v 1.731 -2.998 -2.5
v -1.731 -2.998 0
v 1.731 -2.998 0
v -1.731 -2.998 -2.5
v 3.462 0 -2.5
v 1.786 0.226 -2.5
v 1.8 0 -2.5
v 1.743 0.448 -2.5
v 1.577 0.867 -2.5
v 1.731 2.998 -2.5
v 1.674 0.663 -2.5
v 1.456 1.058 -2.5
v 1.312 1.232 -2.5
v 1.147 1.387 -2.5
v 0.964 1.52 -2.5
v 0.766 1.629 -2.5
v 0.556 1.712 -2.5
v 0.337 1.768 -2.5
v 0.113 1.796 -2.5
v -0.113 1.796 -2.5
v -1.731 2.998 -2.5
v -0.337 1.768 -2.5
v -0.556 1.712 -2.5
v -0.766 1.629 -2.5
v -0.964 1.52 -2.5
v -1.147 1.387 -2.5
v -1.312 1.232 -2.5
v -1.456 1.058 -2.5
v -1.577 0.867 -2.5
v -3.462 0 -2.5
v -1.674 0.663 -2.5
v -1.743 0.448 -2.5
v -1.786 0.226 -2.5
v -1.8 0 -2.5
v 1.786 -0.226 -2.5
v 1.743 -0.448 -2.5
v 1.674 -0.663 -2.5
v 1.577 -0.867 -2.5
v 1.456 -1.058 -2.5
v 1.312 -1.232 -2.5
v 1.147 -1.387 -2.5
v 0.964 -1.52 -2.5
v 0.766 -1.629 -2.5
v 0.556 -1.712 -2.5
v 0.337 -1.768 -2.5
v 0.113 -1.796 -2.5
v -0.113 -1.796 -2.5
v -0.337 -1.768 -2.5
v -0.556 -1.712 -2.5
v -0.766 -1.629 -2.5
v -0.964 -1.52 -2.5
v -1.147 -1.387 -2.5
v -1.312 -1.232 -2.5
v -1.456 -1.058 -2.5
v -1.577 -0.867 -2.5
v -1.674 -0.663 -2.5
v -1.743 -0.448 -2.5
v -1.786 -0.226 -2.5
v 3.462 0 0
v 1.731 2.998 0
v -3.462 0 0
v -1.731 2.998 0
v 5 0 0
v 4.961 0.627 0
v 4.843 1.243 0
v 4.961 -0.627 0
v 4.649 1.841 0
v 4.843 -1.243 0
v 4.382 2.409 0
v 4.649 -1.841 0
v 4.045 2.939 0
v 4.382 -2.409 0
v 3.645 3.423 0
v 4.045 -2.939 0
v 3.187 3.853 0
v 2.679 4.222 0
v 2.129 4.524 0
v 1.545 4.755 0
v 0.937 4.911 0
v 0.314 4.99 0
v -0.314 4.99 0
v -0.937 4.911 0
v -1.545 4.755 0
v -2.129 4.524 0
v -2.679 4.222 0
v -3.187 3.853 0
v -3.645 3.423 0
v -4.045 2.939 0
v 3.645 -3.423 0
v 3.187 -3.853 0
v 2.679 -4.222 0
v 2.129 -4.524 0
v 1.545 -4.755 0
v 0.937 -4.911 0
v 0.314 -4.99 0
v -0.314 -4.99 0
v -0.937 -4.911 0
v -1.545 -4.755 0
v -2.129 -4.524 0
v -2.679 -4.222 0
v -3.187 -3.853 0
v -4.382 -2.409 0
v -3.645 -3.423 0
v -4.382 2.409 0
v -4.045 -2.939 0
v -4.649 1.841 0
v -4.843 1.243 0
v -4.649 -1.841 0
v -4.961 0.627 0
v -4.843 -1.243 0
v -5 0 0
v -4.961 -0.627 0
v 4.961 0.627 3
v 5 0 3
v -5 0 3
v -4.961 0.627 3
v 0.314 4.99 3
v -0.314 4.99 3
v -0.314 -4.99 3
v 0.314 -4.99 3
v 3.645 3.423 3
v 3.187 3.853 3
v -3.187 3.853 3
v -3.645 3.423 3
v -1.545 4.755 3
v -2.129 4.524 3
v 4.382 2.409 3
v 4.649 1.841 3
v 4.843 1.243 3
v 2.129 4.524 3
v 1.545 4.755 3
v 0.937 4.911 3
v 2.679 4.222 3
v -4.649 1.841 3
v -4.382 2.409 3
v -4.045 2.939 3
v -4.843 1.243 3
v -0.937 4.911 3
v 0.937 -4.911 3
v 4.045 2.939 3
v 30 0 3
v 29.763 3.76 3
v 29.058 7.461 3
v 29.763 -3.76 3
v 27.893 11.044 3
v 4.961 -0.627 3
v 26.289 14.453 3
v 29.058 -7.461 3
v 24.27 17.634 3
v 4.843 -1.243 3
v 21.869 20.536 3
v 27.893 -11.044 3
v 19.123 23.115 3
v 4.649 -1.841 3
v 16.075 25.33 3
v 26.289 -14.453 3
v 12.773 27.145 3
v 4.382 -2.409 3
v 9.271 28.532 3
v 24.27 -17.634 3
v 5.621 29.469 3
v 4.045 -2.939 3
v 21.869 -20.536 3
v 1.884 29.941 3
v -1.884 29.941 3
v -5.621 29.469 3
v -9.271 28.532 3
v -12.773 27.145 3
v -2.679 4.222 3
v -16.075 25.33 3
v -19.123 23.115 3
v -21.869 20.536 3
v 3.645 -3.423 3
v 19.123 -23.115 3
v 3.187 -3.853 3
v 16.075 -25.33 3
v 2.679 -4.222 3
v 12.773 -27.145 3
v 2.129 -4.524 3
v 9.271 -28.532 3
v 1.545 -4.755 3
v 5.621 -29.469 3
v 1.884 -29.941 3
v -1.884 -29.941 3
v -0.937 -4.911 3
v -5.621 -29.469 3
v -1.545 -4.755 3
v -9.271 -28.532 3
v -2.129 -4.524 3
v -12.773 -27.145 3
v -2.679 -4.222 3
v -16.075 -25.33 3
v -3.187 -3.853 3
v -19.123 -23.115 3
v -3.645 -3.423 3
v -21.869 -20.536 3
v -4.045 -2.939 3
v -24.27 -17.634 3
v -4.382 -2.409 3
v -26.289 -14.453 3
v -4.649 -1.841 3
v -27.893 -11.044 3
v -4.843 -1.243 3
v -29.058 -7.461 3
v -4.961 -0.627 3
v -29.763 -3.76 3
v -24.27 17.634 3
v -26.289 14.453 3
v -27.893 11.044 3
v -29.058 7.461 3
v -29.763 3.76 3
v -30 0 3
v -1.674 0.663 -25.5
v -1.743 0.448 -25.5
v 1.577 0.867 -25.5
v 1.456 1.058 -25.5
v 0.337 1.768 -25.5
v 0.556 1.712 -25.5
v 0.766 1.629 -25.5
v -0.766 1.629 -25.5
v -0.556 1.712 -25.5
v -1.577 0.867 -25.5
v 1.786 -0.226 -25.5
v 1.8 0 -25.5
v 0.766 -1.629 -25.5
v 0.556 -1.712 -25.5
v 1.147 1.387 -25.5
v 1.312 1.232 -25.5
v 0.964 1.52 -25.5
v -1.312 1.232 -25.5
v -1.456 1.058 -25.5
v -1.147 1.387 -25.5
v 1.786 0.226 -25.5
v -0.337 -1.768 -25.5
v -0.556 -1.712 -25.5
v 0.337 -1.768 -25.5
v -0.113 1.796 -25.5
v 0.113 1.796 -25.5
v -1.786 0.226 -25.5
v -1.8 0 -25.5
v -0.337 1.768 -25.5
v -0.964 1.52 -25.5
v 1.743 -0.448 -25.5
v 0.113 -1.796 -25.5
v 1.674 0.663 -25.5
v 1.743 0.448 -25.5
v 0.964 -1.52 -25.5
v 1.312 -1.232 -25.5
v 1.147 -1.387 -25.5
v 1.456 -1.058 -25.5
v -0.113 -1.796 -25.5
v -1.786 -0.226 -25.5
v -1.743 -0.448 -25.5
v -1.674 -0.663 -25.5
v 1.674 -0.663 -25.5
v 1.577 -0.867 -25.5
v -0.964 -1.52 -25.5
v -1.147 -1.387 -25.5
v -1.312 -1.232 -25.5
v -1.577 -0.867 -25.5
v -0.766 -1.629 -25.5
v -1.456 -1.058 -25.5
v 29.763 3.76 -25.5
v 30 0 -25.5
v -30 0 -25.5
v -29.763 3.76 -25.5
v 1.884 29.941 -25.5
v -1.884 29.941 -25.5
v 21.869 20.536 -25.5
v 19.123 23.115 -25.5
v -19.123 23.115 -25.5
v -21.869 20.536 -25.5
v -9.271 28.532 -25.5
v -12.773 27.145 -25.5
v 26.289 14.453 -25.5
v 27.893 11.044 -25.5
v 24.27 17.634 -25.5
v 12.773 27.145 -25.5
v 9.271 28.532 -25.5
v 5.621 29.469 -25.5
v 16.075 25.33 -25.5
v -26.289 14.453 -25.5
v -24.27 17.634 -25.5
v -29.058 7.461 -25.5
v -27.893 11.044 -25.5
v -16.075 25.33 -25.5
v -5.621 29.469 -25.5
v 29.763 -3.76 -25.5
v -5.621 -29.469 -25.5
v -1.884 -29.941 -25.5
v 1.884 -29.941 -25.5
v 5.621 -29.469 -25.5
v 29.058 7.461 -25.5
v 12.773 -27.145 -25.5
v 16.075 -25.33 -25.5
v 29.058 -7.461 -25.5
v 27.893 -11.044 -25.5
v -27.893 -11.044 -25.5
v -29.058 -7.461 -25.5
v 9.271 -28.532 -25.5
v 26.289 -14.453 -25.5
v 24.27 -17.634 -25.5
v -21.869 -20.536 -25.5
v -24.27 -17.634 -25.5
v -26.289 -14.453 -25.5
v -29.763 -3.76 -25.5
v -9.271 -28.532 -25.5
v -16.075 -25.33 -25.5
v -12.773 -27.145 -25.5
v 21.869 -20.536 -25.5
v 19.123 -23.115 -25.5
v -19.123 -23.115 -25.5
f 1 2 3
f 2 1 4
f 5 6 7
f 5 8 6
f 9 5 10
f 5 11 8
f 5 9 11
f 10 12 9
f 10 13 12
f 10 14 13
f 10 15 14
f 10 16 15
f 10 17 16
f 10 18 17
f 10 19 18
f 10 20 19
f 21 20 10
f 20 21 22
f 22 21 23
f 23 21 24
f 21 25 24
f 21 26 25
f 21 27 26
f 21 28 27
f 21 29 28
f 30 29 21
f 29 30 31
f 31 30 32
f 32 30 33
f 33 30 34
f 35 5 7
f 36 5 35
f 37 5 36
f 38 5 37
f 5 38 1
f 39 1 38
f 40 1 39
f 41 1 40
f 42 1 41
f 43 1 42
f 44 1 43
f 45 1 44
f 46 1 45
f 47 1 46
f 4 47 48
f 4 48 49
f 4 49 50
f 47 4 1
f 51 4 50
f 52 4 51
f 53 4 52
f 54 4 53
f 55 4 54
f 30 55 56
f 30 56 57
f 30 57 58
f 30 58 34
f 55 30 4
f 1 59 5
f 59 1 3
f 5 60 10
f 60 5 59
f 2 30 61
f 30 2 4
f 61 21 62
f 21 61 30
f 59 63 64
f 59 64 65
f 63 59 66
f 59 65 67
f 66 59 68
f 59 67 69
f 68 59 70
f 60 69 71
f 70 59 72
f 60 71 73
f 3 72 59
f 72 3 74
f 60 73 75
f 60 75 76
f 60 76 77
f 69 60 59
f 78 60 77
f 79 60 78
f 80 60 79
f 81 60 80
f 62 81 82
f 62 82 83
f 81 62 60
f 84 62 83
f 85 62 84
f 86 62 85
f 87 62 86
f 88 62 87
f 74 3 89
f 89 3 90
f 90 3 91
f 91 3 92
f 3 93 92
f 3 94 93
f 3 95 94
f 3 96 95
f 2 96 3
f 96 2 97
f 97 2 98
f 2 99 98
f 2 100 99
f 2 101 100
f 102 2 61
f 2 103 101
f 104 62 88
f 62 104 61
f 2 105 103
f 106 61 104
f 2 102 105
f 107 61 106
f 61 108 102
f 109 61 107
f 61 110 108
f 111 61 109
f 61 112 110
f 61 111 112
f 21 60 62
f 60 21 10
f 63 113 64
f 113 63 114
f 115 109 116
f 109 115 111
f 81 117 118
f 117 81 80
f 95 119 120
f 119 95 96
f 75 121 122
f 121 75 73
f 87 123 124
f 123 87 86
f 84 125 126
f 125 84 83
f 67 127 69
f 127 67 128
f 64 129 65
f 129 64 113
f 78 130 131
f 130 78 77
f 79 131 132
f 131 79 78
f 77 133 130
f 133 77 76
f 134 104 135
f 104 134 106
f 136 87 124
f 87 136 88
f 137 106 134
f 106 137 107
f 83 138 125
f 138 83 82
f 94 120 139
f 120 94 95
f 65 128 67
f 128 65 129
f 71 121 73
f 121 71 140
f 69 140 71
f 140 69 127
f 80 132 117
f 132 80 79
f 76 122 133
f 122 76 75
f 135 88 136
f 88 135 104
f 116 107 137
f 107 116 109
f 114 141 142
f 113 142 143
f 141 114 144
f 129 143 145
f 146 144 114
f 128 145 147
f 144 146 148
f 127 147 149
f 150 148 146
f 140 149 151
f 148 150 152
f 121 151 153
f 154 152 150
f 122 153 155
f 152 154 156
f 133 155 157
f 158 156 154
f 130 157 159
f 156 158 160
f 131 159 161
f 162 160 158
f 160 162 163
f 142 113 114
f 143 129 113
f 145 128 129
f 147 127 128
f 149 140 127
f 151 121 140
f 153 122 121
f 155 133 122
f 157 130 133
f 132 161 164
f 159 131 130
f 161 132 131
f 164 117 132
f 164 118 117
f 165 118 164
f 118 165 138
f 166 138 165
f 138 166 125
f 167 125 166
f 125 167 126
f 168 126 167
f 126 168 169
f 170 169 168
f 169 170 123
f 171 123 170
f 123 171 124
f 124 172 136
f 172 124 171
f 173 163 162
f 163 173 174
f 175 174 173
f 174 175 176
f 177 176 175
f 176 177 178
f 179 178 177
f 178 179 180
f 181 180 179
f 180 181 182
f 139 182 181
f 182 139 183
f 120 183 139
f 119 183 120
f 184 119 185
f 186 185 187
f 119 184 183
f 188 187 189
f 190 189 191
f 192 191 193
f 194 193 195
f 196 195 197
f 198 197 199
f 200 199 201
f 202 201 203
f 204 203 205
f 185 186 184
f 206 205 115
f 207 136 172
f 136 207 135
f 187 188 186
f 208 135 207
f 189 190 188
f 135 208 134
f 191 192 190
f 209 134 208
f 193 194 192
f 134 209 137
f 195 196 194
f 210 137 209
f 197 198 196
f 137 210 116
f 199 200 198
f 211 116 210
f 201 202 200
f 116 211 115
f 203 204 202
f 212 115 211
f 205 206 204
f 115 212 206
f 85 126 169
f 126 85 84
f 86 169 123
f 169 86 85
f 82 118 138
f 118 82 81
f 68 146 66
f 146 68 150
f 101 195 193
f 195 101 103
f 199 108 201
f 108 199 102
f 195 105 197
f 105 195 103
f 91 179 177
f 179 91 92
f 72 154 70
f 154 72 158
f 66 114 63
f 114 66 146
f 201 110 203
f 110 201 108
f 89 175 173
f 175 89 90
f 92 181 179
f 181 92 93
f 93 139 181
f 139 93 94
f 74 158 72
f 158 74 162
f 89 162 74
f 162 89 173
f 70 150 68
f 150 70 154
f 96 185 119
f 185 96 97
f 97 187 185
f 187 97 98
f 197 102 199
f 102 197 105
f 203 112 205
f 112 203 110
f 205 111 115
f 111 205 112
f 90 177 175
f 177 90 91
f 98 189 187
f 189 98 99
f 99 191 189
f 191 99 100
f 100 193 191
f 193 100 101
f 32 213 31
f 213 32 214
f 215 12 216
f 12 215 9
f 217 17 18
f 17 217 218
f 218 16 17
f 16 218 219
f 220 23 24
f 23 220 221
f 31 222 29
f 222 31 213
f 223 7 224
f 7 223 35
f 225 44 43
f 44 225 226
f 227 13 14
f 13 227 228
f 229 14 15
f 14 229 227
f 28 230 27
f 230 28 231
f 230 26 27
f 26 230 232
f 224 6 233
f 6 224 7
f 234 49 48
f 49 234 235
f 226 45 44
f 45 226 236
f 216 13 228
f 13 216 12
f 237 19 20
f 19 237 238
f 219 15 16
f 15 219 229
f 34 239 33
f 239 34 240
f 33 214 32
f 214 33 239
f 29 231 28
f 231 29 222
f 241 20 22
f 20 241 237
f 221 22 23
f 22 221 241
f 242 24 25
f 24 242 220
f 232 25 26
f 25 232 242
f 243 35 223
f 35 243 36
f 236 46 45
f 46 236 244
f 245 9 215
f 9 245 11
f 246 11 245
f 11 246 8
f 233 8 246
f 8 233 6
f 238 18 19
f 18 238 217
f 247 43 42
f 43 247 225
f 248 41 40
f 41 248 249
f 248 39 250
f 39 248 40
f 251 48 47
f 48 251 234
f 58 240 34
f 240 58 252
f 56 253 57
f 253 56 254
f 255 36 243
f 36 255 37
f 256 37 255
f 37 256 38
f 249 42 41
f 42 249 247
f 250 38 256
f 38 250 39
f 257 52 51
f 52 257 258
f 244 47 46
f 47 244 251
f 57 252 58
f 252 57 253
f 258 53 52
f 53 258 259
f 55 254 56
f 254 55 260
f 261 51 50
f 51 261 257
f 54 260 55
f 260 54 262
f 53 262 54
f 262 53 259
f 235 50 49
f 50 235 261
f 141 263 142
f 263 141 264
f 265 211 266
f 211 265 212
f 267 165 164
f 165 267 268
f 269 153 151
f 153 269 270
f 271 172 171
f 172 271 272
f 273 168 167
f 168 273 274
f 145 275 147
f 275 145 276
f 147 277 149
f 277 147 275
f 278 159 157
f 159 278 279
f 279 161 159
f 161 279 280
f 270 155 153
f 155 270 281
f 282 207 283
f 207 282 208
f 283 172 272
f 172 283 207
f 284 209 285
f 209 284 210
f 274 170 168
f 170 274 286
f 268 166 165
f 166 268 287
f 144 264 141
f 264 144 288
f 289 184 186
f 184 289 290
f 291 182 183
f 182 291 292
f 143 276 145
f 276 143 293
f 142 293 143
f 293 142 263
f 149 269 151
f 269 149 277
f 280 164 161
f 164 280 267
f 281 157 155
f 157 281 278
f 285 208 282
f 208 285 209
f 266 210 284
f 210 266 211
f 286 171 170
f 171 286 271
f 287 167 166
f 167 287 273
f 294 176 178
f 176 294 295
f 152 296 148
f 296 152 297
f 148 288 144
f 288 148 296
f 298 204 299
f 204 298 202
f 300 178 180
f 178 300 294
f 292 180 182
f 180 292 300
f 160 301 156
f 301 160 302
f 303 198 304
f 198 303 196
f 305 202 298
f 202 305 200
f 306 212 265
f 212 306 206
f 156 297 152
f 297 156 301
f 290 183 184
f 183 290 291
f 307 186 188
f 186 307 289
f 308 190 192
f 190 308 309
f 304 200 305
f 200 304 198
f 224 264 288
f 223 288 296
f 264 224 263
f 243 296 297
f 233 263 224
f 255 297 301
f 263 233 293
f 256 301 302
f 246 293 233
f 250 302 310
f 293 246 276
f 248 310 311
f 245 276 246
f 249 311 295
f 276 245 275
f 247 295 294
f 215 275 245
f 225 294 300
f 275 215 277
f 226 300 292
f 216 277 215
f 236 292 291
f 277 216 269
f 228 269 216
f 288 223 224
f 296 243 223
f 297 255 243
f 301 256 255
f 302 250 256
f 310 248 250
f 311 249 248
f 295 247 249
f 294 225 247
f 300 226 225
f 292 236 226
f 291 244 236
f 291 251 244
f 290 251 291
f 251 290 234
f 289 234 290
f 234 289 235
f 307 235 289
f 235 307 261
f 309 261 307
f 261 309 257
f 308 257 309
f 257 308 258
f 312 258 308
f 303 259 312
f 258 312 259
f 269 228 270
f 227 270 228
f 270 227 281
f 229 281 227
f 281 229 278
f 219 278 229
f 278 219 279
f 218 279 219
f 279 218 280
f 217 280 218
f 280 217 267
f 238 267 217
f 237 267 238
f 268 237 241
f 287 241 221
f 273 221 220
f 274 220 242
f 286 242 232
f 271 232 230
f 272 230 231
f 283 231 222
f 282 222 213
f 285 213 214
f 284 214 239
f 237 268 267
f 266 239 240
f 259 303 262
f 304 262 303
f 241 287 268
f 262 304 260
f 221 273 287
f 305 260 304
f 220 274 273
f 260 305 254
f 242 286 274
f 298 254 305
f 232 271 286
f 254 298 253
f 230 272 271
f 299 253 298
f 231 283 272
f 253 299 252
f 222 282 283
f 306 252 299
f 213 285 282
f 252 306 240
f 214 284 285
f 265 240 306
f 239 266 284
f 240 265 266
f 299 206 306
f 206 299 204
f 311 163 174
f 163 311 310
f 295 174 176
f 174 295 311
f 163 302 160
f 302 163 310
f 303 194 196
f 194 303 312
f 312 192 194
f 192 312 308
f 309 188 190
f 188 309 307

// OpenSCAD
$fn = 50;

difference() {
	union() {
		translate(v = [0, 0, -25.5]) {
			cylinder(h = 28.5, r = 30.0);
		}
	}
	union() {
		translate(v = [0, 0, 0]) {
			rotate(a = [0, 0, 0]) {
				difference() {
					union() {
						translate(v = [0, 0, -2.5]) {
							linear_extrude(height = 2.5) {
								polygon(points = [[3.4619999999999997, 0.0], [1.7310000000000003, 2.9981799479017264], [-1.7309999999999992, 2.9981799479017264], [-3.4619999999999997, 4.2397272186481365e-16], [-1.7310000000000014, -2.998179947901726], [1.7309999999999977, -2.9981799479017277]]);
							}
						}
					}
					union();
				}
			}
		}
		#cylinder(h = 3, r = 5.0);
		#translate(v = [0, 0, -100.0]) {
			cylinder(h = 200, r = 1.8);
		}
	}
}
